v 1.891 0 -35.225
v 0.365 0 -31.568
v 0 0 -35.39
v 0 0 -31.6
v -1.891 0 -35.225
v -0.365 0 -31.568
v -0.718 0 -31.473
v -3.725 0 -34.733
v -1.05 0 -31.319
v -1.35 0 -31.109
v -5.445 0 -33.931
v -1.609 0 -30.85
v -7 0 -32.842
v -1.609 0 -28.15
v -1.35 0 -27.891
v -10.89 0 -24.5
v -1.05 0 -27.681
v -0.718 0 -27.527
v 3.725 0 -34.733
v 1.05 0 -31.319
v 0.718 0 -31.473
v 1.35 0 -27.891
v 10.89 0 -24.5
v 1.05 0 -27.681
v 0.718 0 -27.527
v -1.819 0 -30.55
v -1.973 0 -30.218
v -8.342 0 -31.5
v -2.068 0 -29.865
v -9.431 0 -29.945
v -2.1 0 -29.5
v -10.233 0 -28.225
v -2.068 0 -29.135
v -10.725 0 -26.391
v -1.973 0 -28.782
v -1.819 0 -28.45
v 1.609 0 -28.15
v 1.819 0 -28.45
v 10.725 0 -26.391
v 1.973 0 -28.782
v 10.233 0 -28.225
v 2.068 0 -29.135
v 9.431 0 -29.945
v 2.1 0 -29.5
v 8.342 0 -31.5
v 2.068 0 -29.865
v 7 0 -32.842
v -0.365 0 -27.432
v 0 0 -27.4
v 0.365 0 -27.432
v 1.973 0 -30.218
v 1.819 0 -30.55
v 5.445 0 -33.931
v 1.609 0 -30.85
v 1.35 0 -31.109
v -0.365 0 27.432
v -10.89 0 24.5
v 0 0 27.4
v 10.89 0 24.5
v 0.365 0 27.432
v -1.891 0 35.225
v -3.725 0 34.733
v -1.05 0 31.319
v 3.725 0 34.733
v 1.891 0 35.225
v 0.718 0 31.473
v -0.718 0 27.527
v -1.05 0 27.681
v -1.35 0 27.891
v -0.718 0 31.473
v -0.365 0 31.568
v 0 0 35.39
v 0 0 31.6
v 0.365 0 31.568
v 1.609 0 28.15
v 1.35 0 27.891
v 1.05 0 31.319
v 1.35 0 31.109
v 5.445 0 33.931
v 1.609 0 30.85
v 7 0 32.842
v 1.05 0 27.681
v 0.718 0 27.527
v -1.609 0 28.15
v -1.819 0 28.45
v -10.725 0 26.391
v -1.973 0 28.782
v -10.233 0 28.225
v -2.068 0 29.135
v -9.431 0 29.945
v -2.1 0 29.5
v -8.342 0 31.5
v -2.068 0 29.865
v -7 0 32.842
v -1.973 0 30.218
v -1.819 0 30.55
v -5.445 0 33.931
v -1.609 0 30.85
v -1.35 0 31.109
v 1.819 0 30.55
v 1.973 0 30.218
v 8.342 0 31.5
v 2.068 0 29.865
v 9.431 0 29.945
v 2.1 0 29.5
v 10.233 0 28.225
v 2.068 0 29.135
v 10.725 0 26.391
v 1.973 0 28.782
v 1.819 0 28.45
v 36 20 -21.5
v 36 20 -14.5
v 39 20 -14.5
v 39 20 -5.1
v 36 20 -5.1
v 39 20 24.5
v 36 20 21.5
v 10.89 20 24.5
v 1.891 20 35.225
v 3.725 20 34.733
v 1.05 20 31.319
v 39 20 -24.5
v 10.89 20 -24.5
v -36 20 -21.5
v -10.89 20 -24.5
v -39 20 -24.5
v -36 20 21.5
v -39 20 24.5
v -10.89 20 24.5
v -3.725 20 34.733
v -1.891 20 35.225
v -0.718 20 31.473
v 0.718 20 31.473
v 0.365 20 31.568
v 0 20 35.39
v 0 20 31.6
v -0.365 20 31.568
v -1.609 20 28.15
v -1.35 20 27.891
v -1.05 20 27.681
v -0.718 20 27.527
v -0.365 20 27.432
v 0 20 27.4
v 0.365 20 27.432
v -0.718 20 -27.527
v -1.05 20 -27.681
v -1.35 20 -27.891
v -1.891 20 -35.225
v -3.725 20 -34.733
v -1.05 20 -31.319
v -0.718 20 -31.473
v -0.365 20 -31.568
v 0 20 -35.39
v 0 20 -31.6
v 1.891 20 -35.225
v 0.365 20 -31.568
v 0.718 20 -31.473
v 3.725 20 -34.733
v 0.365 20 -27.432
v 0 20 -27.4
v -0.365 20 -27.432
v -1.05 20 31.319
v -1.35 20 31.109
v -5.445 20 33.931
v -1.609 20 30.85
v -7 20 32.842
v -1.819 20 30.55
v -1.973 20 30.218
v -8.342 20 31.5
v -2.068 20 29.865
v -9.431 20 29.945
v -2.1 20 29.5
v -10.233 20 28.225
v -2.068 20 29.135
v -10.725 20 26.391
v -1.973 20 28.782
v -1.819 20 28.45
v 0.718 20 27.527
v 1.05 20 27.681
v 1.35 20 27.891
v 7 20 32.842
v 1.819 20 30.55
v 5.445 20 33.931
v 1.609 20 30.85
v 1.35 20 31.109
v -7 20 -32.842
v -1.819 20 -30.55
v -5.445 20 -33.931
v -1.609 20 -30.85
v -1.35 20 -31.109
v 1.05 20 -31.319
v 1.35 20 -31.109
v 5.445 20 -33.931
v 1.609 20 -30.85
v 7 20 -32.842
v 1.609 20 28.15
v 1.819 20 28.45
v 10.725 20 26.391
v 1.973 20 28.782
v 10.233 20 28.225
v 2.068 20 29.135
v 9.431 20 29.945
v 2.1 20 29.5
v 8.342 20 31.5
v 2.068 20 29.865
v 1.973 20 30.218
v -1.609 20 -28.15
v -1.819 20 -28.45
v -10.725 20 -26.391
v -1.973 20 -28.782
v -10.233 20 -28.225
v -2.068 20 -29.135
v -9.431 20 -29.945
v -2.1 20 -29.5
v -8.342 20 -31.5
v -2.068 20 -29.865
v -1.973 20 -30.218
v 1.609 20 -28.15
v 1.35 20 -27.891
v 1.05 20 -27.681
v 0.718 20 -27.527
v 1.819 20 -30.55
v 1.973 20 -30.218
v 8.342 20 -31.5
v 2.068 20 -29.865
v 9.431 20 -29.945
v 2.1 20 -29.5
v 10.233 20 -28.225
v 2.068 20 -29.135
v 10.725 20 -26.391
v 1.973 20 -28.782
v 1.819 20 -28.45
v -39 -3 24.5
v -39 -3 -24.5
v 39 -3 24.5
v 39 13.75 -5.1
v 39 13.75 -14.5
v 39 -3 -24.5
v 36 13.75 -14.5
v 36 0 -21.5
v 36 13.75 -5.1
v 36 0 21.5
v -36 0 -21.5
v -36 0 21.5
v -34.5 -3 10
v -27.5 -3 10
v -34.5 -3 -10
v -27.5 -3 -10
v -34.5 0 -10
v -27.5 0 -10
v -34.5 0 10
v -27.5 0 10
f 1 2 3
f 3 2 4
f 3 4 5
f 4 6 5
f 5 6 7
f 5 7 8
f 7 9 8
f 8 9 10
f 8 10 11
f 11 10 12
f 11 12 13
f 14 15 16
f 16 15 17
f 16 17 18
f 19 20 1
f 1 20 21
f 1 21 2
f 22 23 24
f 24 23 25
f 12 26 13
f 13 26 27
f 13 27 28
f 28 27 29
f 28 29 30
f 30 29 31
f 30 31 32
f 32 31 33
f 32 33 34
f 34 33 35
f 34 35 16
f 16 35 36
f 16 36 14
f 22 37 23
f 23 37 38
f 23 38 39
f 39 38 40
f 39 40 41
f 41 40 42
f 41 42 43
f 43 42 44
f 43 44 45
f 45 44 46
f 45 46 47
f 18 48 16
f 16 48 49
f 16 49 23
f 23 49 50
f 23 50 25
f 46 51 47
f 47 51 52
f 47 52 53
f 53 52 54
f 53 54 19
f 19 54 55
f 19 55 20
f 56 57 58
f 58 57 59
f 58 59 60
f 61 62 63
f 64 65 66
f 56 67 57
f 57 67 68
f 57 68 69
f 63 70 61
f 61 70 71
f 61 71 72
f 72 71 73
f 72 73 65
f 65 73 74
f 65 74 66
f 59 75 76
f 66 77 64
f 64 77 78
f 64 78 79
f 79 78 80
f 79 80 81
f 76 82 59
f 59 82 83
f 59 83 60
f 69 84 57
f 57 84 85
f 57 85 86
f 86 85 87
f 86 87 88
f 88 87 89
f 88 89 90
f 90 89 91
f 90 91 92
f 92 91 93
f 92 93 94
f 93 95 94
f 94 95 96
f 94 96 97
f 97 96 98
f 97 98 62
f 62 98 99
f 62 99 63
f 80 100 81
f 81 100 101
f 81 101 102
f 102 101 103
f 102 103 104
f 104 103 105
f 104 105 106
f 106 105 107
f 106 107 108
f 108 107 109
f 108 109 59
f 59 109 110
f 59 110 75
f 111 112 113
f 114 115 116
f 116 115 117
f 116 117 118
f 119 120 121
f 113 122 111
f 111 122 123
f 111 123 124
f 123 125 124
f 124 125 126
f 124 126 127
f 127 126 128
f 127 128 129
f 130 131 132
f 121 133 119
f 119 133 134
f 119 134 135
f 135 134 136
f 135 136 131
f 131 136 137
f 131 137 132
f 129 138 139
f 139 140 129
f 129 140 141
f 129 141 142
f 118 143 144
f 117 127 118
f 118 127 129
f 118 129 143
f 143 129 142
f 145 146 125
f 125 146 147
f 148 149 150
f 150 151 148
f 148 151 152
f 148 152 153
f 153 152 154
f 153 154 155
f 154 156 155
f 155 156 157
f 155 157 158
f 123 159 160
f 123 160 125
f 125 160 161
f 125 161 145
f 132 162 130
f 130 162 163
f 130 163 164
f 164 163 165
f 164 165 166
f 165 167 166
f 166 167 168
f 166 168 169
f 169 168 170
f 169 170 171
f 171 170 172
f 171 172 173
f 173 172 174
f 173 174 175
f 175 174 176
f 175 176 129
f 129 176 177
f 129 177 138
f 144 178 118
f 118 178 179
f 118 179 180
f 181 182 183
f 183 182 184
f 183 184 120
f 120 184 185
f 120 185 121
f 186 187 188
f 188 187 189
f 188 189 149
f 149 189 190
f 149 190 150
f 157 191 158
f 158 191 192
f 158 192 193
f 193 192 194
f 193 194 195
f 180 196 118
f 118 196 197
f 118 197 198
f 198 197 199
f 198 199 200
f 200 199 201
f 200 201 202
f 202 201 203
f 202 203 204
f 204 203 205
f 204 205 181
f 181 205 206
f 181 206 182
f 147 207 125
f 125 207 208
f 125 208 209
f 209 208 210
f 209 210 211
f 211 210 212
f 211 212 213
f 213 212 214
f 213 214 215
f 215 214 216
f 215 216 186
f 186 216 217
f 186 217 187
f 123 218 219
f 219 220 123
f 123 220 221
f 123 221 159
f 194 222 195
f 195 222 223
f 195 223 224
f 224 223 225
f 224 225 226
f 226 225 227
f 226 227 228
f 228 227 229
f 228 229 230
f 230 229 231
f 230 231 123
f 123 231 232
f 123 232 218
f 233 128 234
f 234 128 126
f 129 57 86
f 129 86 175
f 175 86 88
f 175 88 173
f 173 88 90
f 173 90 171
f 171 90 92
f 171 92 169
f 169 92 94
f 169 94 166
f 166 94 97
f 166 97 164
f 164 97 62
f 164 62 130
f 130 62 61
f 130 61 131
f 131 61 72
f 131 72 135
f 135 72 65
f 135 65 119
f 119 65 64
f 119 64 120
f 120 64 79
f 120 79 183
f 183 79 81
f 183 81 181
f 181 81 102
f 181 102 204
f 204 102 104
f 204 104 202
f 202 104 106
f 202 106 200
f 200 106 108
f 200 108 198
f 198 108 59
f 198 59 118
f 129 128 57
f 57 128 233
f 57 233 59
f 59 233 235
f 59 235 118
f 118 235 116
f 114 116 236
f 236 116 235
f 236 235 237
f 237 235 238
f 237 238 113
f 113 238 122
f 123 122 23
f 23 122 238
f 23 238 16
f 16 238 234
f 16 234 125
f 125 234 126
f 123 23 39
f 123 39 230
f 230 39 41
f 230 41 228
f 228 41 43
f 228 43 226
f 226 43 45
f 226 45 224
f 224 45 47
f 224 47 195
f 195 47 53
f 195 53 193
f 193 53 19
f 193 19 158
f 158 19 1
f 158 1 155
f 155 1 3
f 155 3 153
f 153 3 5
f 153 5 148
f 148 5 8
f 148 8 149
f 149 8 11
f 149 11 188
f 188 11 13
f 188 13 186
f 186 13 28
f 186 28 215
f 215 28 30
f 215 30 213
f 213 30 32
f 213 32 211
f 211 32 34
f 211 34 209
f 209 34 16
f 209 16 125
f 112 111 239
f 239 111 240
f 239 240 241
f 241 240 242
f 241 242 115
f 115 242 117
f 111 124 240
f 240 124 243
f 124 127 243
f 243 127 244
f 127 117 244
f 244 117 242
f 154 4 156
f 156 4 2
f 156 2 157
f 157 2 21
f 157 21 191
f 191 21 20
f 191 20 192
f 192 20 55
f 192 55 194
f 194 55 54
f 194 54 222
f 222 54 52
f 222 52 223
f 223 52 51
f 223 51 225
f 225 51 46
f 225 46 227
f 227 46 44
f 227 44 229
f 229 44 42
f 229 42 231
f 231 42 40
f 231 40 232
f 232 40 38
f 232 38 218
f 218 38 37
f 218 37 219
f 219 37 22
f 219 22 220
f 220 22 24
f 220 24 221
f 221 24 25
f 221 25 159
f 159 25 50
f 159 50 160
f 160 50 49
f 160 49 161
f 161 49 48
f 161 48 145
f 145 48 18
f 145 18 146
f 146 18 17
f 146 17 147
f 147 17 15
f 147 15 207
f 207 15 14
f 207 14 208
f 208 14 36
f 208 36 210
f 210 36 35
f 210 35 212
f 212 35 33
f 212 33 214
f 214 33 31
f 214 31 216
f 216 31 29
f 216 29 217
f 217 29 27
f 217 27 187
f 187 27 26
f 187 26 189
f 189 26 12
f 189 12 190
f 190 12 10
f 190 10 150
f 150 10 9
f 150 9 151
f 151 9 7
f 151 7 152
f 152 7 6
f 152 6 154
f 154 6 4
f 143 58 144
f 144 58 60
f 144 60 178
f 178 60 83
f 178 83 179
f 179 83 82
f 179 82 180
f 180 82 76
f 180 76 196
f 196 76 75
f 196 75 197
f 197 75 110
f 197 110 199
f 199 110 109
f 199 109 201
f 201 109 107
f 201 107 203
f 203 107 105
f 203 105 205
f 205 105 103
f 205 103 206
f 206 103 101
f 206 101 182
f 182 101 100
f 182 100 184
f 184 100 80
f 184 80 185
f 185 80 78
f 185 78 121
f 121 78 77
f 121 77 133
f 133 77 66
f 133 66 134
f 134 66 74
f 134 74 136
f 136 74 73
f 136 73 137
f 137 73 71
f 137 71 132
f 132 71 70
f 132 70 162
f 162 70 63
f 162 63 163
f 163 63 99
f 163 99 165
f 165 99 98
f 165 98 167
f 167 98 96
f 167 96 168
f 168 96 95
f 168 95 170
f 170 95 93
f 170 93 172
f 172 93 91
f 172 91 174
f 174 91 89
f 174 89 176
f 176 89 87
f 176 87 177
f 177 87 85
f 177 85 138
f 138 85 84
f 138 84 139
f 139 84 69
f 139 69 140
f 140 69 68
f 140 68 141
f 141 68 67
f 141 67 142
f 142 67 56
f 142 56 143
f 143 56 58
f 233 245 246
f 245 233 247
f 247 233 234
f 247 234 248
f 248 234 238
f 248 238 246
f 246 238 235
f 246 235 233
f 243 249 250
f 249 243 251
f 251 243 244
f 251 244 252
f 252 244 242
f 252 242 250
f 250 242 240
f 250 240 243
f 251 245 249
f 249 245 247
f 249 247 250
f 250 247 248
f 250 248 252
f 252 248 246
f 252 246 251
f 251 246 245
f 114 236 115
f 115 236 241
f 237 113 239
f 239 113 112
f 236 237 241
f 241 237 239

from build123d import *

# Parameters (mm, degrees)
SKETCH1_R           = 2.1
SKETCH1_W           = 72
SKETCH1_H           = 43
BOSS_EXTRUDE1_DEPTH = 20
SKETCH2_W           = 78
SKETCH2_H           = 49
BOSS_EXTRUDE2_DEPTH = 3
SKETCH3_W           = 7
SKETCH3_H           = 20
CUT_EXTRUDE1_DEPTH  = 10
SKETCH4_W           = 9.4
SKETCH4_H           = 6.25
CUT_EXTRUDE2_DEPTH  = 10


with BuildPart() as part:
    # Sketch1 → Boss-Extrude1 (new body)
    with BuildSketch(Plane(origin=(0, 0, 0), x_dir=(1, 0, 0), z_dir=(0, 1, 0))):
        with BuildLine():
            Line((-39, 24.5), (-39, 10.886061931))
            Line((-39, 10.886061931), (-39, -10.886061931))
            Line((-39, -10.886061931), (-39, -24.5))
            Line((-39, -24.5), (-10.89, -24.5))
            ThreePointArc((-10.89, -24.5), (0, -35.39), (10.89, -24.5))
            Line((10.89, -24.5), (39, -24.5))
            Line((39, -24.5), (39, -10.886061931))
            Line((39, -10.886061931), (39, 10.886061931))
            Line((39, 10.886061931), (39, 24.5))
            Line((39, 24.5), (10.89, 24.5))
            ThreePointArc((10.89, 24.5), (0, 35.39), (-10.89, 24.5))
            Line((-10.89, 24.5), (-39, 24.5))
        make_face()
        with Locations(Location((0, -29.5, 0), (0, 0, 270))):
            Circle(SKETCH1_R, mode=Mode.SUBTRACT)
        with Locations(Location((0, 29.5, 0), (0, 0, 270))):
            Circle(SKETCH1_R, mode=Mode.SUBTRACT)
        Rectangle(SKETCH1_W, SKETCH1_H, mode=Mode.SUBTRACT)
    extrude(amount=BOSS_EXTRUDE1_DEPTH)

    # Sketch2 → Boss-Extrude2 (add)
    with BuildSketch(Plane.XZ):
        Rectangle(SKETCH2_W, SKETCH2_H)
    extrude(amount=BOSS_EXTRUDE2_DEPTH)

    # Sketch3 → Cut-Extrude1 (cut)
    with BuildSketch(Plane(origin=(0, 0, 0), x_dir=(1, 0, 0), z_dir=(0, 1, 0))):
        with Locations((-31, 0)):
            Rectangle(SKETCH3_W, SKETCH3_H)
    extrude(amount=-CUT_EXTRUDE1_DEPTH, mode=Mode.SUBTRACT)

    # Sketch4 → Cut-Extrude2 (cut)
    with BuildSketch(Plane(origin=(39, 0, 0), x_dir=(0, 0, -1), z_dir=(1, 0, 0))):
        with Locations((9.8, 16.875)):
            Rectangle(SKETCH4_W, SKETCH4_H)
    extrude(amount=-CUT_EXTRUDE2_DEPTH, mode=Mode.SUBTRACT)


solid = part.part
